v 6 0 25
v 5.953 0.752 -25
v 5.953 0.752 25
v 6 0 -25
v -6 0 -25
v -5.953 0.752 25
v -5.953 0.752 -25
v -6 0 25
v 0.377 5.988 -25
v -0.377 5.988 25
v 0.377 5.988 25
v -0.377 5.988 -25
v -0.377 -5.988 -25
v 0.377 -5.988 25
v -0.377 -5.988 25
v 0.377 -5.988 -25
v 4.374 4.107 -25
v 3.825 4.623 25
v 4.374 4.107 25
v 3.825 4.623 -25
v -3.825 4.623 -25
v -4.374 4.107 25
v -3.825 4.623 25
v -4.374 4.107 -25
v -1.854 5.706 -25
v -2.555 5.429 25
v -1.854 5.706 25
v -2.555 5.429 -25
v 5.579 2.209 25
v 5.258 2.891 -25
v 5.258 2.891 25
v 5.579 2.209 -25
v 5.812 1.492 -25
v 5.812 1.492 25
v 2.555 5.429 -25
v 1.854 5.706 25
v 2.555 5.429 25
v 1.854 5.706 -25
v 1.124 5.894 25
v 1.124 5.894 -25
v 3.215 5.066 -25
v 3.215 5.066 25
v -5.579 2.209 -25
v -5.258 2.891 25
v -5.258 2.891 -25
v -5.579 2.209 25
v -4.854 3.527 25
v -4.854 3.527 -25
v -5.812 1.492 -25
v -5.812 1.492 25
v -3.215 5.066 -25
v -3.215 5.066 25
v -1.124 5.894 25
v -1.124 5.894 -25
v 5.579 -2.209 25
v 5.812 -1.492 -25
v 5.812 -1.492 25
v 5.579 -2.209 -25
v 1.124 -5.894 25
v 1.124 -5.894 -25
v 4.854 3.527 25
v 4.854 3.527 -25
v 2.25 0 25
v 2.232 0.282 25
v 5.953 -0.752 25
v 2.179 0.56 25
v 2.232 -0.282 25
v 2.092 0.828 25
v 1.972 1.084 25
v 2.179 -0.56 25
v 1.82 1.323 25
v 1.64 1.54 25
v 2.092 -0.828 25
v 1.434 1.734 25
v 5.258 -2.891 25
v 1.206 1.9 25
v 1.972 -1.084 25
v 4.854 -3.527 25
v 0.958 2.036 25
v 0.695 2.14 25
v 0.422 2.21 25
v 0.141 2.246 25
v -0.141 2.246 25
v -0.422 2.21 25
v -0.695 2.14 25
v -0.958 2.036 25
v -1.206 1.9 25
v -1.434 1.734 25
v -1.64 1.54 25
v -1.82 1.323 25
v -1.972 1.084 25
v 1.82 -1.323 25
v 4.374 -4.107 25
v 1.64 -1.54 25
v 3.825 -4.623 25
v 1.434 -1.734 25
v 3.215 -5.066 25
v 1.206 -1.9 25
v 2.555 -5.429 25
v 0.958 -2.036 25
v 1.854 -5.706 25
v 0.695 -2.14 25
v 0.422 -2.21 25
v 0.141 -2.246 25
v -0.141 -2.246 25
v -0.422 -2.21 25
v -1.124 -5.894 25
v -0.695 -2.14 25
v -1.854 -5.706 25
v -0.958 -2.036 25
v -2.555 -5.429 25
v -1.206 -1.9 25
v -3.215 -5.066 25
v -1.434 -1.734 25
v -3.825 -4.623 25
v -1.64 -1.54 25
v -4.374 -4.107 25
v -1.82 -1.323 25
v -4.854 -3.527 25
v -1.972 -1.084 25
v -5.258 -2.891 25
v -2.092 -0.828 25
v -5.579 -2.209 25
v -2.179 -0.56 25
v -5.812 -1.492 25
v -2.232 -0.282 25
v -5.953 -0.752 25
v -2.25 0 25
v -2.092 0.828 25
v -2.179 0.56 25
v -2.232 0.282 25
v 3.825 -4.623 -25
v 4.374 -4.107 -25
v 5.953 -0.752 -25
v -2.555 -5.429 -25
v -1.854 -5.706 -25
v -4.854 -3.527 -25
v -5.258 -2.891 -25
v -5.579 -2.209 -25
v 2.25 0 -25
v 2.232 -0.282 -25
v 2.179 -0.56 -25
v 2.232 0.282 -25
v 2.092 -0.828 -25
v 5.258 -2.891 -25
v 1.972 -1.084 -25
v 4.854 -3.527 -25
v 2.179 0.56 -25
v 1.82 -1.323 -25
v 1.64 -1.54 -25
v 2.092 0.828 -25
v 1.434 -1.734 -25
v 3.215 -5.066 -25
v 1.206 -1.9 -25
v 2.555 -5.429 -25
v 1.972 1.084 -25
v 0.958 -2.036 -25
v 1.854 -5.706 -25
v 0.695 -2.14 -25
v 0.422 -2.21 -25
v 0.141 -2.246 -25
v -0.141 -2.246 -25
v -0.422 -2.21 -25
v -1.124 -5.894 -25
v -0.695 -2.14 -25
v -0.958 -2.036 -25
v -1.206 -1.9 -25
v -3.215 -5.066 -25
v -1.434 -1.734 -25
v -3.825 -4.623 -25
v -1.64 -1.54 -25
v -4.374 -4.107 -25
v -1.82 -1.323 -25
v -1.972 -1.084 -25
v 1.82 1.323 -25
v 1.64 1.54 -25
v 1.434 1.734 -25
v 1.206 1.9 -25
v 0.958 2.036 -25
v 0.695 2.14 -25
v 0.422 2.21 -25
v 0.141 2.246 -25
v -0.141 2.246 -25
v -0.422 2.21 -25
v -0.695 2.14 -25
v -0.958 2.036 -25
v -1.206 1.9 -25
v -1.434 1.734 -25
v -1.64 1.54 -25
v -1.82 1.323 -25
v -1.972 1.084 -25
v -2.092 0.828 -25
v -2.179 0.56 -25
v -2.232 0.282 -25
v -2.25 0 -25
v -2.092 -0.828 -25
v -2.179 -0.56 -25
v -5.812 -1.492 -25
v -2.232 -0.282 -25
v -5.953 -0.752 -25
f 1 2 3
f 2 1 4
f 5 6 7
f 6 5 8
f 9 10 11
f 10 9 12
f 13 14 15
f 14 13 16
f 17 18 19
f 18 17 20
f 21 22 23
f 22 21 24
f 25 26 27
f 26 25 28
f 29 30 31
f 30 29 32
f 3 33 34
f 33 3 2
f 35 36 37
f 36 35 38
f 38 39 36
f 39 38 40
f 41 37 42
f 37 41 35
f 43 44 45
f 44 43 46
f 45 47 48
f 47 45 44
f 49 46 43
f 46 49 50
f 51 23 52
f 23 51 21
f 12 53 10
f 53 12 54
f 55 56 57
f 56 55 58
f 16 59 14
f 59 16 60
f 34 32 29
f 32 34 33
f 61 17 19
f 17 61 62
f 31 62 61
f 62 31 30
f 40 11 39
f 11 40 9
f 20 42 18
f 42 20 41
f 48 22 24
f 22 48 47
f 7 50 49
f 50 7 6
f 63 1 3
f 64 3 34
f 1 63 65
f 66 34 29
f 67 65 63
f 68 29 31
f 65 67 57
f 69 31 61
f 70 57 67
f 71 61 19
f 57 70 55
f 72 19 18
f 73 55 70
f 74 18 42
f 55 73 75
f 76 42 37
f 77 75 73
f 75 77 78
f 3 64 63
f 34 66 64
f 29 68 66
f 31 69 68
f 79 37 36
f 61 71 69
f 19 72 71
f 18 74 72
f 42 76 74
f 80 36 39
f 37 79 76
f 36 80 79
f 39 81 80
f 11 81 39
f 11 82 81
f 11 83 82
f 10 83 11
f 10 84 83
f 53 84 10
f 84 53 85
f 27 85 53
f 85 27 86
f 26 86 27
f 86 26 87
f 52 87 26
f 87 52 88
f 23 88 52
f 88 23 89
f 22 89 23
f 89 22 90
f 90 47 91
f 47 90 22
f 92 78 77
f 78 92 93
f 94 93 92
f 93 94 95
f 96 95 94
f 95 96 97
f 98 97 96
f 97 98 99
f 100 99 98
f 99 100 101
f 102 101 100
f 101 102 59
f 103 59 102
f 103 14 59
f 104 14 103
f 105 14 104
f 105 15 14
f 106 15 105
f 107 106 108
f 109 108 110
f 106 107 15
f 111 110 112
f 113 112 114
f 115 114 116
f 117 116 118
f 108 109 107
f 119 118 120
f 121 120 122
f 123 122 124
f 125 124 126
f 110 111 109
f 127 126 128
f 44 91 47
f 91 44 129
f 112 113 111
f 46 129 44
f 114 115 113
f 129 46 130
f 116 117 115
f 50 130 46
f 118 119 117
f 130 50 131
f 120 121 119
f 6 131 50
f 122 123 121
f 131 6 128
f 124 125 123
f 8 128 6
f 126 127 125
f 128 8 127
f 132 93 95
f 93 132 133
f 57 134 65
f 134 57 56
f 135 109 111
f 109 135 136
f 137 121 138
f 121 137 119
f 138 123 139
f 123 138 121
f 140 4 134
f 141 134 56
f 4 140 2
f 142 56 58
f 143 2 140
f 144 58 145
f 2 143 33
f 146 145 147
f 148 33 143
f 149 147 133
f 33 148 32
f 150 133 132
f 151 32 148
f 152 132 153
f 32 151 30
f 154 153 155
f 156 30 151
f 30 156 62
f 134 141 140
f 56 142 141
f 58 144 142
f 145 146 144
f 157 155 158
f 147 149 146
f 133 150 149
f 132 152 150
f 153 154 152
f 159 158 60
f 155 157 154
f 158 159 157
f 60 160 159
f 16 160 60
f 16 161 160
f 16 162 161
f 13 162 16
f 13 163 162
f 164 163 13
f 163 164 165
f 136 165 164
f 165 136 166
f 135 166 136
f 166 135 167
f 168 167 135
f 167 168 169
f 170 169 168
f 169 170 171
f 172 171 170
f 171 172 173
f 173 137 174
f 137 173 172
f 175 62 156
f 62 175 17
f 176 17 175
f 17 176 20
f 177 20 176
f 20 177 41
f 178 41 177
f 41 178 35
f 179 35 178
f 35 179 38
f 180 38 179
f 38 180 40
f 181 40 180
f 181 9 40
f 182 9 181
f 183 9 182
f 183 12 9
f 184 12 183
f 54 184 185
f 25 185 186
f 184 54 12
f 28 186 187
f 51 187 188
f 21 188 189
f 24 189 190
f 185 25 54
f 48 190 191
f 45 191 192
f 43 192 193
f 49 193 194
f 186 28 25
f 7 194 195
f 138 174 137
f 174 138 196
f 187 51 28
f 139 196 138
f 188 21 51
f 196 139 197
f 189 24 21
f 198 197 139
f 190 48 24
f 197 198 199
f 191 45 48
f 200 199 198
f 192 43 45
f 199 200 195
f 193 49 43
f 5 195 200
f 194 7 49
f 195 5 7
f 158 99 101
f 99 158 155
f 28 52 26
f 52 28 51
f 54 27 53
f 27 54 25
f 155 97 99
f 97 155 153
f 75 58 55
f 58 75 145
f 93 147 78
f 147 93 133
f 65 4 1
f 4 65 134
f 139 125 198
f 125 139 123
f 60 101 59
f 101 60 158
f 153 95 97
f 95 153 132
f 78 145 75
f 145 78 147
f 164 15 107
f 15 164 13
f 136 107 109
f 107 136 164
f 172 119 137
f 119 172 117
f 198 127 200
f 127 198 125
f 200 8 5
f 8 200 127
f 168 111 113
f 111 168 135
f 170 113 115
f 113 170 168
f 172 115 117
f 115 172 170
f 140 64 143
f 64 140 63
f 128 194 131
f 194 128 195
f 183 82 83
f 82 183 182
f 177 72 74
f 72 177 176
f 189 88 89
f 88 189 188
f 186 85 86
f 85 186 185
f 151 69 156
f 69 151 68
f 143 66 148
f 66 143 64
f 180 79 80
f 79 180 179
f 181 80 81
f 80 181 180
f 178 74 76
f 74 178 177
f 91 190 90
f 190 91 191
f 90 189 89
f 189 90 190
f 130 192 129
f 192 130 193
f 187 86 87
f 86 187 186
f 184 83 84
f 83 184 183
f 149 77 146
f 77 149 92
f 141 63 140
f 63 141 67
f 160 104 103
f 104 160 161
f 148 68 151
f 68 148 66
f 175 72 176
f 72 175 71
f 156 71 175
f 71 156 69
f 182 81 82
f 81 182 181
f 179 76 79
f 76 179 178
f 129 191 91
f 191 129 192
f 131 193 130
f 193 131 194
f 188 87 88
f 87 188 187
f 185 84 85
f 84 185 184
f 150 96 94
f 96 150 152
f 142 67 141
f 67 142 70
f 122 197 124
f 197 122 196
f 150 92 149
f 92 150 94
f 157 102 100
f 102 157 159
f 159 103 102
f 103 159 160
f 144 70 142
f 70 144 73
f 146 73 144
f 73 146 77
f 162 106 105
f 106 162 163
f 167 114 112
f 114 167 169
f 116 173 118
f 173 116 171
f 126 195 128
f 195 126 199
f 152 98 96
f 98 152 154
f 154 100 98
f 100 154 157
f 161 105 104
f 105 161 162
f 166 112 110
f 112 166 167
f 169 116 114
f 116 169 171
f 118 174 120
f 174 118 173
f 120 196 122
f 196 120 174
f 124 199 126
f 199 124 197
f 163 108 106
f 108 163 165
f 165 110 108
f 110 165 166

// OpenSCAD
$fn = 50;


difference() {
	union() {
		translate(v = [0, 0, -25.0000000000]) {
			cylinder(h = 50, r = 6.0000000000);
		}
	}
	union() {
		translate(v = [0, 0, -100.0000000000]) {
			cylinder(h = 200, r = 2.2500000000);
		}
	}
}
